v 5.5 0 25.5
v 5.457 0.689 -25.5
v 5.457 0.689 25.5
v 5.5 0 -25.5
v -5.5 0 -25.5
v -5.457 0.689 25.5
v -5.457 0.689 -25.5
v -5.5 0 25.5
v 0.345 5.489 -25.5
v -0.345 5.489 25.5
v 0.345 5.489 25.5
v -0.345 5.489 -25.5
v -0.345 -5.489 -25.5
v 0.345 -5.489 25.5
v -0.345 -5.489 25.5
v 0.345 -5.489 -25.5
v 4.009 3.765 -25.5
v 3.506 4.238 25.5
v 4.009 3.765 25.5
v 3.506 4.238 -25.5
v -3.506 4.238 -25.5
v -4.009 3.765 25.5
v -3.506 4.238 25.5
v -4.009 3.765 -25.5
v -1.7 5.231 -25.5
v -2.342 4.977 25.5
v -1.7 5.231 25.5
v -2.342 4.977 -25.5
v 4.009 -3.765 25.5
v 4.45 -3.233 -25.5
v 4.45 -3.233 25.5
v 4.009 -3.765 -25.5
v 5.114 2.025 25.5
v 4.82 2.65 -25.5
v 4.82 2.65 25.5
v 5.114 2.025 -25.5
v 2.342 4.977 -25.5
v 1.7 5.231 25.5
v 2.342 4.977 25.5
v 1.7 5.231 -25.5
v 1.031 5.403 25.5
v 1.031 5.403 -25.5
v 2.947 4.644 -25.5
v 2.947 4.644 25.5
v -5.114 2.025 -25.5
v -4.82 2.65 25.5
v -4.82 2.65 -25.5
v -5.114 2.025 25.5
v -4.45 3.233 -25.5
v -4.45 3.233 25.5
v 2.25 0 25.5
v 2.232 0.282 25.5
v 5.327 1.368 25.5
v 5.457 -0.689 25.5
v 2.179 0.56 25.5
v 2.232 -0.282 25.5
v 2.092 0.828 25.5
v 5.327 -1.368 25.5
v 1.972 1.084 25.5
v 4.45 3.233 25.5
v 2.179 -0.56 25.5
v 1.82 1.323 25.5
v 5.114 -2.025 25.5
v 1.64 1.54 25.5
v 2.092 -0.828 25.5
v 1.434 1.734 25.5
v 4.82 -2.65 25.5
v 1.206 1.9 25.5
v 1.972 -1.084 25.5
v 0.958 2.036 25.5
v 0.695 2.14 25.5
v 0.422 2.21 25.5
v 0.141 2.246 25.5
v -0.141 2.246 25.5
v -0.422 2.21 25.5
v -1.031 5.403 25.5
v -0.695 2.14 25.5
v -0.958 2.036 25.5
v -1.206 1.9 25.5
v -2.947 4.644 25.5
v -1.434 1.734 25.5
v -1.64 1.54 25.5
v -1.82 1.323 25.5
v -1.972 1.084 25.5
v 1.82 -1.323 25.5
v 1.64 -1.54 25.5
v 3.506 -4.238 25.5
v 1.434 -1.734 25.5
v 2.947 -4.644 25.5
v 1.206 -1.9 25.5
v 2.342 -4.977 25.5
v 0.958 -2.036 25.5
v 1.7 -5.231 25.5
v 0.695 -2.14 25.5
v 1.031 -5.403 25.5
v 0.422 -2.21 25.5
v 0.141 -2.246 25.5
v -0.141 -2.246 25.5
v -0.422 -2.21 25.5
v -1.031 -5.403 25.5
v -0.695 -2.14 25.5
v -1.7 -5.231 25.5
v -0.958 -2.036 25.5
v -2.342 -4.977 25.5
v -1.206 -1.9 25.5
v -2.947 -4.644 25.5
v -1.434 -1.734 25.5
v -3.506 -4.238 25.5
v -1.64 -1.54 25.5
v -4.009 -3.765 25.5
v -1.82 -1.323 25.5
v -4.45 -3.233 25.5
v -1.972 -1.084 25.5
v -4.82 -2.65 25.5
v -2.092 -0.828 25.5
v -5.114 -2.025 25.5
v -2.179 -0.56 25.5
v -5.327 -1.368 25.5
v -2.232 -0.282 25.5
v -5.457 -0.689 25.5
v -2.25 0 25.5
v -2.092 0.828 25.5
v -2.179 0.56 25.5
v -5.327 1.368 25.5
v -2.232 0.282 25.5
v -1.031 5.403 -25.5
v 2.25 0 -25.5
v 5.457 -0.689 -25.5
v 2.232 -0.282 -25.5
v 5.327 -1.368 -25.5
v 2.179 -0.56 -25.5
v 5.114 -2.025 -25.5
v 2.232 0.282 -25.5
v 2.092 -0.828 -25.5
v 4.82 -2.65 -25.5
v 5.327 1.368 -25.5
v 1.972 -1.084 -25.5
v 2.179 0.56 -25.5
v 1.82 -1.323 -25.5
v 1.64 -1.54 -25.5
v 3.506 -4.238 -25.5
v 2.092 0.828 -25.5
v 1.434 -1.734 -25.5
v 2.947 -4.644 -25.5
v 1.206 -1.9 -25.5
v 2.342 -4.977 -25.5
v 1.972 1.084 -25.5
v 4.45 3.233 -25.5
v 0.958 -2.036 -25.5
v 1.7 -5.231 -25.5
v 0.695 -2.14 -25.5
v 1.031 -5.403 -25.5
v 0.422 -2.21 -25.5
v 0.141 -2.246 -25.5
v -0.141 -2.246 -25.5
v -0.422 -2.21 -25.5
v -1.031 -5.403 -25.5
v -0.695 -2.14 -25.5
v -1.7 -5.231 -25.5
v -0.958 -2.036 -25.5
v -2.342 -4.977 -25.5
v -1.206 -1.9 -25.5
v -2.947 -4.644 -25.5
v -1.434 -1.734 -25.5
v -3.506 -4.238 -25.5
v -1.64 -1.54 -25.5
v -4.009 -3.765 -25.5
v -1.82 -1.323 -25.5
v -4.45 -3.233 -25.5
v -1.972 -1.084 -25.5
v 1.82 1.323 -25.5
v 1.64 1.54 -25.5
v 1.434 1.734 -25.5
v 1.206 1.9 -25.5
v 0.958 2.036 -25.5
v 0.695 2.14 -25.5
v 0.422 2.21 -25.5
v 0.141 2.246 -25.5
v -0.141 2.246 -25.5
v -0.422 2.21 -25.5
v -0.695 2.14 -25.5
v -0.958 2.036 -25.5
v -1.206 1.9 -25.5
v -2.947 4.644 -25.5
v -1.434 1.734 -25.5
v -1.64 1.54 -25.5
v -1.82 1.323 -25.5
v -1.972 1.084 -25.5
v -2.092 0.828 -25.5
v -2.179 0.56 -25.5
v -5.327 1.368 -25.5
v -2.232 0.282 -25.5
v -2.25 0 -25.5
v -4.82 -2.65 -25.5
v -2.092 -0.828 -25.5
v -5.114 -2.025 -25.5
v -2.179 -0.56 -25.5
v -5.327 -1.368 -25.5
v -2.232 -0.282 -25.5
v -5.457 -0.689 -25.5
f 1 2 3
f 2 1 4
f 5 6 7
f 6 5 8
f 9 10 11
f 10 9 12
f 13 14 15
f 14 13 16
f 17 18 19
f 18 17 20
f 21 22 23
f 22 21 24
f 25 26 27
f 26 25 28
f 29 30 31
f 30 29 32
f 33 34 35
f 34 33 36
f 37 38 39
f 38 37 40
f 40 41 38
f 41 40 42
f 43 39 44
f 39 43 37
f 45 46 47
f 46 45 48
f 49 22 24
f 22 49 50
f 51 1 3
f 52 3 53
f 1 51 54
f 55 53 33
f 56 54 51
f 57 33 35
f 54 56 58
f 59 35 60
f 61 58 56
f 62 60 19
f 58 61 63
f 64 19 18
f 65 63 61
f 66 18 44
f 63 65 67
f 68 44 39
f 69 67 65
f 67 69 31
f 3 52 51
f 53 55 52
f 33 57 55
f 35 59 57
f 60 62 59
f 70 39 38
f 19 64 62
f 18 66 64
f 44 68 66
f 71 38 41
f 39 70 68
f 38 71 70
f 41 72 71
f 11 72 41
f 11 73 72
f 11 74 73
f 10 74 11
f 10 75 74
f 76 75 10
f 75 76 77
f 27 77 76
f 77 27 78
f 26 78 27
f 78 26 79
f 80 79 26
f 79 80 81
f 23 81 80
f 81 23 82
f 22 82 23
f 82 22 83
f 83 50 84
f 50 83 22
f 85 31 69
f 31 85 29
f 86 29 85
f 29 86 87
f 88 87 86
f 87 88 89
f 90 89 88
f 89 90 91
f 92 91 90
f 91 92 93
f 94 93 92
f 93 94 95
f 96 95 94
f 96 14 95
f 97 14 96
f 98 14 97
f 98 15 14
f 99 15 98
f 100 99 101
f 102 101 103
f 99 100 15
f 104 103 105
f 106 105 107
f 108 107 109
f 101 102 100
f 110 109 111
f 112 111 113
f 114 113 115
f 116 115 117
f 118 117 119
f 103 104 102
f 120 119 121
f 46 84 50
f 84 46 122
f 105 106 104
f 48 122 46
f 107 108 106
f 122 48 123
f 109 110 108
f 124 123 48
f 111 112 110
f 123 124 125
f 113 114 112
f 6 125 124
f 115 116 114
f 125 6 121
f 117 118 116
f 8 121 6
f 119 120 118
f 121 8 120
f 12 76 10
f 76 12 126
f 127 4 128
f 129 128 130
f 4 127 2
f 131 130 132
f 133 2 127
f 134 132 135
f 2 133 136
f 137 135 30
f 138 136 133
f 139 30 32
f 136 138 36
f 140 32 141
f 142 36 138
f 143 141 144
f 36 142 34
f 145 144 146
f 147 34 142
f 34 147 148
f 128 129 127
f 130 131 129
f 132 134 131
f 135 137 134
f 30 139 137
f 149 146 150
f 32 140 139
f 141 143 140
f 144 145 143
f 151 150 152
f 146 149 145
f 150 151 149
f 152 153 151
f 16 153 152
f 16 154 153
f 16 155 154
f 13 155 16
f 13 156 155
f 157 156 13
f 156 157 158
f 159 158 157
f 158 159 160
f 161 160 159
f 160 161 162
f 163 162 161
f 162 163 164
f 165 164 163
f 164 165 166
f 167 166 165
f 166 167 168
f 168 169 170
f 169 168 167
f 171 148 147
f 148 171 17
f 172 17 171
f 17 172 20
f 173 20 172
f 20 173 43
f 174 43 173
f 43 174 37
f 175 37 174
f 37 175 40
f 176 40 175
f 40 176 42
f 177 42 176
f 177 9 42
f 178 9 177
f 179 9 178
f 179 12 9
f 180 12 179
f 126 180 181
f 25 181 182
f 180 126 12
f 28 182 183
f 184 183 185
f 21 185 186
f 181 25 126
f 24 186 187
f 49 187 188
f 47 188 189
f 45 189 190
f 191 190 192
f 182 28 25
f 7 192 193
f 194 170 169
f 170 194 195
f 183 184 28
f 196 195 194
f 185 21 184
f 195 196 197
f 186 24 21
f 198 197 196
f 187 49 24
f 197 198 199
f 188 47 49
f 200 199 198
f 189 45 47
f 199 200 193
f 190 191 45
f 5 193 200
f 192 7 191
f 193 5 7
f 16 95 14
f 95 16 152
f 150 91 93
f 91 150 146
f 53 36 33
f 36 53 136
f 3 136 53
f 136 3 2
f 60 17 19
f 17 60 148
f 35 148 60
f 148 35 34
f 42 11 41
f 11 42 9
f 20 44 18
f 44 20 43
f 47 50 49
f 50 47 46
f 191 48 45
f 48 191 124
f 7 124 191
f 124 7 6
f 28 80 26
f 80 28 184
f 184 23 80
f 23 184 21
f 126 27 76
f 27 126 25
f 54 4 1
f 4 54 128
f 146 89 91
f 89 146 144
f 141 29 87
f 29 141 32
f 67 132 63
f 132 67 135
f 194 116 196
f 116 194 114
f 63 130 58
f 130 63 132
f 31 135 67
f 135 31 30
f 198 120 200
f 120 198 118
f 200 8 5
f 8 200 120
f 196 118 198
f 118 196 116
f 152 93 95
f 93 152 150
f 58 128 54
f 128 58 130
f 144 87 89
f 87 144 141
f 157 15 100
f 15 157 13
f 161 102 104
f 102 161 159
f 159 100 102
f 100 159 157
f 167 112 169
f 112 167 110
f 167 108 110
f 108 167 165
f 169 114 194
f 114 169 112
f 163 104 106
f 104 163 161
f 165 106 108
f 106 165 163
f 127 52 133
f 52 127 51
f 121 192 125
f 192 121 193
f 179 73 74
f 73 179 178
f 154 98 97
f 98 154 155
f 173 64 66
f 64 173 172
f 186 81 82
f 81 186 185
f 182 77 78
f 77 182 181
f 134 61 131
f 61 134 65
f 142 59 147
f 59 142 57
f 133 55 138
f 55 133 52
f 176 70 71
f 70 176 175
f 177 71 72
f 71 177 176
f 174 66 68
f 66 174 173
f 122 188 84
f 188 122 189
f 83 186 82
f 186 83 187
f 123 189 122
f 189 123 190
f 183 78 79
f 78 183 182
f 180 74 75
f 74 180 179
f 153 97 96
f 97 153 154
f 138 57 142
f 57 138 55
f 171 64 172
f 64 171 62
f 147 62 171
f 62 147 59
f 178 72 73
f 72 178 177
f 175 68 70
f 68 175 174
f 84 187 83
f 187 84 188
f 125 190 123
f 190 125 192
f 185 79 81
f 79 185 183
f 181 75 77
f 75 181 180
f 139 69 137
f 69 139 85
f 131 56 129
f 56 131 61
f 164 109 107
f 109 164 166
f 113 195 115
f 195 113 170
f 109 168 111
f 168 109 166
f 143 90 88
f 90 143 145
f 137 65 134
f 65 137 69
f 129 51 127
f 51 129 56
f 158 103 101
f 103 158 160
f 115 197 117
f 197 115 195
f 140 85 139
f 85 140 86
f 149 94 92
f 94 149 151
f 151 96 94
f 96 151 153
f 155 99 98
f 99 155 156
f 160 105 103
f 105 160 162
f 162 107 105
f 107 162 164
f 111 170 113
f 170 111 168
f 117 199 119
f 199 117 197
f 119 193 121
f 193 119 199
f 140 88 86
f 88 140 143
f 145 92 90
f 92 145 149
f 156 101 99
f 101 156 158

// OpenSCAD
$fn = 50;


difference() {
	union() {
		translate(v = [0, 0, -25.5000000000]) {
			cylinder(h = 51, r = 5.5000000000);
		}
	}
	union() {
		translate(v = [0, 0, -100.0000000000]) {
			cylinder(h = 200, r = 2.2500000000);
		}
	}
}
